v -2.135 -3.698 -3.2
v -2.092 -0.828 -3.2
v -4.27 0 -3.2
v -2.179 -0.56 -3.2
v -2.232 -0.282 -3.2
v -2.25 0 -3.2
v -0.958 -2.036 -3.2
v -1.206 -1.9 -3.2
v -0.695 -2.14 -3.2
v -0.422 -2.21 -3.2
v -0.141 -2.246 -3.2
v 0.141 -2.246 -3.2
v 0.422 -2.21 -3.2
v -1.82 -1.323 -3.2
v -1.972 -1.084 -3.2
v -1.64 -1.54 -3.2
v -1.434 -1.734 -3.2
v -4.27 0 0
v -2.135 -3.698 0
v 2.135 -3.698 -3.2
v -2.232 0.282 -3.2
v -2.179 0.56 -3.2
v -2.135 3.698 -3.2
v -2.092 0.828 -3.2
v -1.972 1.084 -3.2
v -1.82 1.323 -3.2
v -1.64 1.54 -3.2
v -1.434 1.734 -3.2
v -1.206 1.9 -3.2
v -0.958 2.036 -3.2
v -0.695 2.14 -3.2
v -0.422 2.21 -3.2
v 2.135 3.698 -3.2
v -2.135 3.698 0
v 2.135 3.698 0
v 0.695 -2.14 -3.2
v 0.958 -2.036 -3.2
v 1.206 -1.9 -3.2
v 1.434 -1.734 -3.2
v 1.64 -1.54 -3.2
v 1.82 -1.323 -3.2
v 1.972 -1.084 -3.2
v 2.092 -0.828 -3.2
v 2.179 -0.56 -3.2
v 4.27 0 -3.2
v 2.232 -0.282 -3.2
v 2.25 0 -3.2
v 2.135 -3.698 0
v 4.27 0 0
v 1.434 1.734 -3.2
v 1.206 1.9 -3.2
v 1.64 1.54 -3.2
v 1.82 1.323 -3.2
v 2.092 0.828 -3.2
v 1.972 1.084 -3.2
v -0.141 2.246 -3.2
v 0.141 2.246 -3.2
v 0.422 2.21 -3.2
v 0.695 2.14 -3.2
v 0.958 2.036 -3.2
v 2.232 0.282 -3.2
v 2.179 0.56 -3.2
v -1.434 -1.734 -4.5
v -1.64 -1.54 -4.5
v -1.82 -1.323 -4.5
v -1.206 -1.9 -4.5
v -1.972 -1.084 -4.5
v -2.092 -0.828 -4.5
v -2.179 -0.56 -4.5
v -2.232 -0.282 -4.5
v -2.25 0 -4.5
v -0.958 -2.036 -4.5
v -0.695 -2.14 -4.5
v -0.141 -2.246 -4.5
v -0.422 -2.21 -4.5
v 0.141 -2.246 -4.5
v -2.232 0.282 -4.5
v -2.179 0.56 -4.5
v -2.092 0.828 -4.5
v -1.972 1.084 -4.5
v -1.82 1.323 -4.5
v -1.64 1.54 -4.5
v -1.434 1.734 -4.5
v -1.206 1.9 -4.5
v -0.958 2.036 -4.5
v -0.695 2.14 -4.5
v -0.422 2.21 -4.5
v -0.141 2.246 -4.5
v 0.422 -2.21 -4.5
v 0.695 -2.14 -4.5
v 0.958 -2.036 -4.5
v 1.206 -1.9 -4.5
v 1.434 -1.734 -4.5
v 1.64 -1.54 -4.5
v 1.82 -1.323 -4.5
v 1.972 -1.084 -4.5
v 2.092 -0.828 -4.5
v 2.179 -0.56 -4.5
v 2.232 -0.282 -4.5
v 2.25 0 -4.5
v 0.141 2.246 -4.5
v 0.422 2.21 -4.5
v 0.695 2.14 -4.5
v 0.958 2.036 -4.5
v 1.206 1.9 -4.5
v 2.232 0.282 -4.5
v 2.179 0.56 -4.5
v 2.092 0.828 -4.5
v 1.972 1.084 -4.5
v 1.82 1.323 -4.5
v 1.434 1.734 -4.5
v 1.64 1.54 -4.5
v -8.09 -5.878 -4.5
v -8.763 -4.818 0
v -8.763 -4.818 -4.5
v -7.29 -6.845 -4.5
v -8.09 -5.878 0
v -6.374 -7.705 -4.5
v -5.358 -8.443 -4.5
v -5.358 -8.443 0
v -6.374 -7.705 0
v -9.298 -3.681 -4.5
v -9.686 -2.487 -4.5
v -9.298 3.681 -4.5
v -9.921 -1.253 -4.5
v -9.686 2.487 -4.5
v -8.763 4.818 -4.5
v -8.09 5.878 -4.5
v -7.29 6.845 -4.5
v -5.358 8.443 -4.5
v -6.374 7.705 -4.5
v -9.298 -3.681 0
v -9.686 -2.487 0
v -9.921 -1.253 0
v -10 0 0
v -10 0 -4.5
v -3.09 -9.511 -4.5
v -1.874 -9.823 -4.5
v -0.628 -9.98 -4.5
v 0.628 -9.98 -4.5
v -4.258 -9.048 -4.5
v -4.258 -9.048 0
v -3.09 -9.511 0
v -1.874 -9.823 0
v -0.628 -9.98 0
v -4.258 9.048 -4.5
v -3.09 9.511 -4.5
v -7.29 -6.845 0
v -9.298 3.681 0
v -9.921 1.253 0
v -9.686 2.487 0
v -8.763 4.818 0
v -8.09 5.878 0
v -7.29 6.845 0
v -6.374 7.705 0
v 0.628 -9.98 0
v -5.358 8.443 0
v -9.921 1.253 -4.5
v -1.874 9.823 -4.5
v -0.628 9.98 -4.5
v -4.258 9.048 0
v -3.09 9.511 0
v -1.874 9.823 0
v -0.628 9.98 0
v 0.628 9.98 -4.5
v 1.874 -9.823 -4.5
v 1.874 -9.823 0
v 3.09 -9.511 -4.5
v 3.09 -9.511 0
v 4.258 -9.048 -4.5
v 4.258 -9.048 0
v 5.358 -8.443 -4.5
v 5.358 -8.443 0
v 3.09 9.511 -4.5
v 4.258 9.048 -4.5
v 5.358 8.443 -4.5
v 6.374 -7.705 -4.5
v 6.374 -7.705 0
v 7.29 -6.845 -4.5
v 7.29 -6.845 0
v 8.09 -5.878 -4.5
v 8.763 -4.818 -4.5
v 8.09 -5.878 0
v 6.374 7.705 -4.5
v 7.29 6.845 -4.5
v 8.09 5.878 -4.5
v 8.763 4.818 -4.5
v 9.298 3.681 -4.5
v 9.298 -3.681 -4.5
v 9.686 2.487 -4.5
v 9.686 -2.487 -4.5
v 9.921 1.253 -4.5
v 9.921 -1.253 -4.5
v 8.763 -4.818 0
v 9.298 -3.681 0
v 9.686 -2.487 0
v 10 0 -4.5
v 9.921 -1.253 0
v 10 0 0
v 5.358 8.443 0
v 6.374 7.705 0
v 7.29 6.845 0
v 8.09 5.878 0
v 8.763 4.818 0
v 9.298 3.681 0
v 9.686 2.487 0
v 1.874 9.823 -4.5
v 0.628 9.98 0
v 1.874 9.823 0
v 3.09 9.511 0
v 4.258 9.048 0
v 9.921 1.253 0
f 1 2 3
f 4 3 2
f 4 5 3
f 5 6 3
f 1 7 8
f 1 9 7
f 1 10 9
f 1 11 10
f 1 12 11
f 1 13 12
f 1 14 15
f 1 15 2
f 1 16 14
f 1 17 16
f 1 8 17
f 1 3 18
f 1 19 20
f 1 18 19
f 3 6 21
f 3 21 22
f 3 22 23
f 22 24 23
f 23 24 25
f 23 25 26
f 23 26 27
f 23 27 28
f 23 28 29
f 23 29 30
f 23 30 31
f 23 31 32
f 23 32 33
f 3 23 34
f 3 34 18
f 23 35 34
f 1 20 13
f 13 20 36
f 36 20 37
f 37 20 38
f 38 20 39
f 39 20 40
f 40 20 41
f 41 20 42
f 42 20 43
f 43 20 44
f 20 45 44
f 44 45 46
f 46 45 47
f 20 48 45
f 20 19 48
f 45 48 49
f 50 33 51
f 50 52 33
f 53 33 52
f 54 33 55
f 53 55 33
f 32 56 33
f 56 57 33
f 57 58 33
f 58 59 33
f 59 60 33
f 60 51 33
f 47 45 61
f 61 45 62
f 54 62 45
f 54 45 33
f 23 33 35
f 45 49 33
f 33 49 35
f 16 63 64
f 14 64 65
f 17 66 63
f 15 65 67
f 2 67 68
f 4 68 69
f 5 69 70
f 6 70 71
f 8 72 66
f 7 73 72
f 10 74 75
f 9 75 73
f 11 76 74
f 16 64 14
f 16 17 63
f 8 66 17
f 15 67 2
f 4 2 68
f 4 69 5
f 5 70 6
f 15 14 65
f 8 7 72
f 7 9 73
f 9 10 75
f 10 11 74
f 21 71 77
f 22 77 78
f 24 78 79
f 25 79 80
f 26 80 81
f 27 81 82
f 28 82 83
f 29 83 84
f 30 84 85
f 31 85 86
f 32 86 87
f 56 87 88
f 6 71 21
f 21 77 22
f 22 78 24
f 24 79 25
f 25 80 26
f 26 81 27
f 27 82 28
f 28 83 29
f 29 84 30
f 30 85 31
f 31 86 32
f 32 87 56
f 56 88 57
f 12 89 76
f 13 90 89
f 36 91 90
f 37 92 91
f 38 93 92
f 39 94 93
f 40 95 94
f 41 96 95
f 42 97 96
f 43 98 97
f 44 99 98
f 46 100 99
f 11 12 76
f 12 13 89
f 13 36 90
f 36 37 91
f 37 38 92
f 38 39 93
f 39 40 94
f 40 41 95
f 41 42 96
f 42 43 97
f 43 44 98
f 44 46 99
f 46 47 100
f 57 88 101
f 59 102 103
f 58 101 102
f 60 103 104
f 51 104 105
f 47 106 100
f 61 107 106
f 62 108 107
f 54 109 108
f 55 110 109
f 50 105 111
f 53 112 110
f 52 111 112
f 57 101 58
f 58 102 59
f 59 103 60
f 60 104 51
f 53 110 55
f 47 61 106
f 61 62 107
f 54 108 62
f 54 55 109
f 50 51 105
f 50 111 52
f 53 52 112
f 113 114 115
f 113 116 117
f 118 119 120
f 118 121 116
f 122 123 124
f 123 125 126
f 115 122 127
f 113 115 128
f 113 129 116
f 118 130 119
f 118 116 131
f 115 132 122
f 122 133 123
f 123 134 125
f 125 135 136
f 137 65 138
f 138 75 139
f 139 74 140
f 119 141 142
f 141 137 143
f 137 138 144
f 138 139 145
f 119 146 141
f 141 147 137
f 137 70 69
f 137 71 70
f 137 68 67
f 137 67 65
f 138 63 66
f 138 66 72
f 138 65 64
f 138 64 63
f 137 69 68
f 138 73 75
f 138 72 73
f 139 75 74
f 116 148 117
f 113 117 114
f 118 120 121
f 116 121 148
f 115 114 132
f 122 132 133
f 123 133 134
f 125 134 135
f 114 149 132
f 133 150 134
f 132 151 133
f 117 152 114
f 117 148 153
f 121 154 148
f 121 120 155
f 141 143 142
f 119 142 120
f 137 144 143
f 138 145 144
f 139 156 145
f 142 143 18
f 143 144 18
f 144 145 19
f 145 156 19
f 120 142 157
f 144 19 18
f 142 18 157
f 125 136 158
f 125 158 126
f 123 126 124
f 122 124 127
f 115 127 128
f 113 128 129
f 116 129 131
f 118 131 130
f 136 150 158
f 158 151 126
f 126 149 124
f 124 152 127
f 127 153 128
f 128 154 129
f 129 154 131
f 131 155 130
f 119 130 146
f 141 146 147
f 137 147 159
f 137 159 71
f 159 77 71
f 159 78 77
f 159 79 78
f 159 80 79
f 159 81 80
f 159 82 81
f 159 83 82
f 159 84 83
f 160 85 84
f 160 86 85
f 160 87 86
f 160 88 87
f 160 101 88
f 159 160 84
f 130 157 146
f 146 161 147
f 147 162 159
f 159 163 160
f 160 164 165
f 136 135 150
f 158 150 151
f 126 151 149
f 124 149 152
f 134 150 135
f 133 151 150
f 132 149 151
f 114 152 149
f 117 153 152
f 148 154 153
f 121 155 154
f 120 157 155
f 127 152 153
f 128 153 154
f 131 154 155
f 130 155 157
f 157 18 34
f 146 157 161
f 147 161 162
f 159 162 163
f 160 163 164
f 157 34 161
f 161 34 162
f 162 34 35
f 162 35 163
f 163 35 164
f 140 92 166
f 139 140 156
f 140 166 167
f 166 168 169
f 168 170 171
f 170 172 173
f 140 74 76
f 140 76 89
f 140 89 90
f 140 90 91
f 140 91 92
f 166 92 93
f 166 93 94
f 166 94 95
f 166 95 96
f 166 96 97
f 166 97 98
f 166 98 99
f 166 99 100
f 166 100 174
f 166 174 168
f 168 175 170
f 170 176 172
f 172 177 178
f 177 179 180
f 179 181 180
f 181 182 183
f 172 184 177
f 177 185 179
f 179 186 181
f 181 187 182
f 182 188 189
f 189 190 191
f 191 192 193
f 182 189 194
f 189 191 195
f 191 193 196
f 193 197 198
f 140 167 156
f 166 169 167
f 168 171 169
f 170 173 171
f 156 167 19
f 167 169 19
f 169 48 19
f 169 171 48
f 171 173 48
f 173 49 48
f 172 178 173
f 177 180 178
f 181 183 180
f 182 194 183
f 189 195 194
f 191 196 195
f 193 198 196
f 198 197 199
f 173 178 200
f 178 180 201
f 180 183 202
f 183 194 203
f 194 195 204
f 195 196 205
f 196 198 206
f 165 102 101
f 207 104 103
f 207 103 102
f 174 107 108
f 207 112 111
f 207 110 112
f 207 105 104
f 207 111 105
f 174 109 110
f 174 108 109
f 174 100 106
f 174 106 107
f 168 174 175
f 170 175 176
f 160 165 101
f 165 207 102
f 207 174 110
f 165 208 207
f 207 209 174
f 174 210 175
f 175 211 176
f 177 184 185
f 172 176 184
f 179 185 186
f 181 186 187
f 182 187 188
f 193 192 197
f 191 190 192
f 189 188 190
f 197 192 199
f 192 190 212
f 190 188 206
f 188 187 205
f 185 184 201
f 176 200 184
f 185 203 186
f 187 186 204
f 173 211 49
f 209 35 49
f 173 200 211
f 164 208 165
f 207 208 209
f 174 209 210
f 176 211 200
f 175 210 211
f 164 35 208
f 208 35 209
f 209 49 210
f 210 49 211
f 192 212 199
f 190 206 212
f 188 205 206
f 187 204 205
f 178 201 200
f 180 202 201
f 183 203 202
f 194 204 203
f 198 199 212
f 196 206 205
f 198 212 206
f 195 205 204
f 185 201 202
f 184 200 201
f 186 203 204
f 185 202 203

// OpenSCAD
$fn = 50;

difference() {
	union() {
		translate(v = [0, 0, -4.5]) {
			cylinder(h = 4.5, r = 10.0);
		}
	}
	union() {
		translate(v = [0, 0, 0]) {
			rotate(a = [0, 0, 0]) {
				difference() {
					union() {
						translate(v = [0, 0, -3.2]) {
							linear_extrude(height = 3.2) {
								polygon(points = [[4.2698, 0.0], [2.1349000000000005, 3.697755269078796], [-2.134899999999999, 3.6977552690787965], [-4.2698, 5.228996902999369e-16], [-2.134900000000002, -3.6977552690787956], [2.1348999999999974, -3.697755269078798]]);
							}
						}
					}
					union();
				}
			}
		}
		#translate(v = [0, 0, -100.0]) {
			cylinder(h = 200, r = 2.25);
		}
	}
}
